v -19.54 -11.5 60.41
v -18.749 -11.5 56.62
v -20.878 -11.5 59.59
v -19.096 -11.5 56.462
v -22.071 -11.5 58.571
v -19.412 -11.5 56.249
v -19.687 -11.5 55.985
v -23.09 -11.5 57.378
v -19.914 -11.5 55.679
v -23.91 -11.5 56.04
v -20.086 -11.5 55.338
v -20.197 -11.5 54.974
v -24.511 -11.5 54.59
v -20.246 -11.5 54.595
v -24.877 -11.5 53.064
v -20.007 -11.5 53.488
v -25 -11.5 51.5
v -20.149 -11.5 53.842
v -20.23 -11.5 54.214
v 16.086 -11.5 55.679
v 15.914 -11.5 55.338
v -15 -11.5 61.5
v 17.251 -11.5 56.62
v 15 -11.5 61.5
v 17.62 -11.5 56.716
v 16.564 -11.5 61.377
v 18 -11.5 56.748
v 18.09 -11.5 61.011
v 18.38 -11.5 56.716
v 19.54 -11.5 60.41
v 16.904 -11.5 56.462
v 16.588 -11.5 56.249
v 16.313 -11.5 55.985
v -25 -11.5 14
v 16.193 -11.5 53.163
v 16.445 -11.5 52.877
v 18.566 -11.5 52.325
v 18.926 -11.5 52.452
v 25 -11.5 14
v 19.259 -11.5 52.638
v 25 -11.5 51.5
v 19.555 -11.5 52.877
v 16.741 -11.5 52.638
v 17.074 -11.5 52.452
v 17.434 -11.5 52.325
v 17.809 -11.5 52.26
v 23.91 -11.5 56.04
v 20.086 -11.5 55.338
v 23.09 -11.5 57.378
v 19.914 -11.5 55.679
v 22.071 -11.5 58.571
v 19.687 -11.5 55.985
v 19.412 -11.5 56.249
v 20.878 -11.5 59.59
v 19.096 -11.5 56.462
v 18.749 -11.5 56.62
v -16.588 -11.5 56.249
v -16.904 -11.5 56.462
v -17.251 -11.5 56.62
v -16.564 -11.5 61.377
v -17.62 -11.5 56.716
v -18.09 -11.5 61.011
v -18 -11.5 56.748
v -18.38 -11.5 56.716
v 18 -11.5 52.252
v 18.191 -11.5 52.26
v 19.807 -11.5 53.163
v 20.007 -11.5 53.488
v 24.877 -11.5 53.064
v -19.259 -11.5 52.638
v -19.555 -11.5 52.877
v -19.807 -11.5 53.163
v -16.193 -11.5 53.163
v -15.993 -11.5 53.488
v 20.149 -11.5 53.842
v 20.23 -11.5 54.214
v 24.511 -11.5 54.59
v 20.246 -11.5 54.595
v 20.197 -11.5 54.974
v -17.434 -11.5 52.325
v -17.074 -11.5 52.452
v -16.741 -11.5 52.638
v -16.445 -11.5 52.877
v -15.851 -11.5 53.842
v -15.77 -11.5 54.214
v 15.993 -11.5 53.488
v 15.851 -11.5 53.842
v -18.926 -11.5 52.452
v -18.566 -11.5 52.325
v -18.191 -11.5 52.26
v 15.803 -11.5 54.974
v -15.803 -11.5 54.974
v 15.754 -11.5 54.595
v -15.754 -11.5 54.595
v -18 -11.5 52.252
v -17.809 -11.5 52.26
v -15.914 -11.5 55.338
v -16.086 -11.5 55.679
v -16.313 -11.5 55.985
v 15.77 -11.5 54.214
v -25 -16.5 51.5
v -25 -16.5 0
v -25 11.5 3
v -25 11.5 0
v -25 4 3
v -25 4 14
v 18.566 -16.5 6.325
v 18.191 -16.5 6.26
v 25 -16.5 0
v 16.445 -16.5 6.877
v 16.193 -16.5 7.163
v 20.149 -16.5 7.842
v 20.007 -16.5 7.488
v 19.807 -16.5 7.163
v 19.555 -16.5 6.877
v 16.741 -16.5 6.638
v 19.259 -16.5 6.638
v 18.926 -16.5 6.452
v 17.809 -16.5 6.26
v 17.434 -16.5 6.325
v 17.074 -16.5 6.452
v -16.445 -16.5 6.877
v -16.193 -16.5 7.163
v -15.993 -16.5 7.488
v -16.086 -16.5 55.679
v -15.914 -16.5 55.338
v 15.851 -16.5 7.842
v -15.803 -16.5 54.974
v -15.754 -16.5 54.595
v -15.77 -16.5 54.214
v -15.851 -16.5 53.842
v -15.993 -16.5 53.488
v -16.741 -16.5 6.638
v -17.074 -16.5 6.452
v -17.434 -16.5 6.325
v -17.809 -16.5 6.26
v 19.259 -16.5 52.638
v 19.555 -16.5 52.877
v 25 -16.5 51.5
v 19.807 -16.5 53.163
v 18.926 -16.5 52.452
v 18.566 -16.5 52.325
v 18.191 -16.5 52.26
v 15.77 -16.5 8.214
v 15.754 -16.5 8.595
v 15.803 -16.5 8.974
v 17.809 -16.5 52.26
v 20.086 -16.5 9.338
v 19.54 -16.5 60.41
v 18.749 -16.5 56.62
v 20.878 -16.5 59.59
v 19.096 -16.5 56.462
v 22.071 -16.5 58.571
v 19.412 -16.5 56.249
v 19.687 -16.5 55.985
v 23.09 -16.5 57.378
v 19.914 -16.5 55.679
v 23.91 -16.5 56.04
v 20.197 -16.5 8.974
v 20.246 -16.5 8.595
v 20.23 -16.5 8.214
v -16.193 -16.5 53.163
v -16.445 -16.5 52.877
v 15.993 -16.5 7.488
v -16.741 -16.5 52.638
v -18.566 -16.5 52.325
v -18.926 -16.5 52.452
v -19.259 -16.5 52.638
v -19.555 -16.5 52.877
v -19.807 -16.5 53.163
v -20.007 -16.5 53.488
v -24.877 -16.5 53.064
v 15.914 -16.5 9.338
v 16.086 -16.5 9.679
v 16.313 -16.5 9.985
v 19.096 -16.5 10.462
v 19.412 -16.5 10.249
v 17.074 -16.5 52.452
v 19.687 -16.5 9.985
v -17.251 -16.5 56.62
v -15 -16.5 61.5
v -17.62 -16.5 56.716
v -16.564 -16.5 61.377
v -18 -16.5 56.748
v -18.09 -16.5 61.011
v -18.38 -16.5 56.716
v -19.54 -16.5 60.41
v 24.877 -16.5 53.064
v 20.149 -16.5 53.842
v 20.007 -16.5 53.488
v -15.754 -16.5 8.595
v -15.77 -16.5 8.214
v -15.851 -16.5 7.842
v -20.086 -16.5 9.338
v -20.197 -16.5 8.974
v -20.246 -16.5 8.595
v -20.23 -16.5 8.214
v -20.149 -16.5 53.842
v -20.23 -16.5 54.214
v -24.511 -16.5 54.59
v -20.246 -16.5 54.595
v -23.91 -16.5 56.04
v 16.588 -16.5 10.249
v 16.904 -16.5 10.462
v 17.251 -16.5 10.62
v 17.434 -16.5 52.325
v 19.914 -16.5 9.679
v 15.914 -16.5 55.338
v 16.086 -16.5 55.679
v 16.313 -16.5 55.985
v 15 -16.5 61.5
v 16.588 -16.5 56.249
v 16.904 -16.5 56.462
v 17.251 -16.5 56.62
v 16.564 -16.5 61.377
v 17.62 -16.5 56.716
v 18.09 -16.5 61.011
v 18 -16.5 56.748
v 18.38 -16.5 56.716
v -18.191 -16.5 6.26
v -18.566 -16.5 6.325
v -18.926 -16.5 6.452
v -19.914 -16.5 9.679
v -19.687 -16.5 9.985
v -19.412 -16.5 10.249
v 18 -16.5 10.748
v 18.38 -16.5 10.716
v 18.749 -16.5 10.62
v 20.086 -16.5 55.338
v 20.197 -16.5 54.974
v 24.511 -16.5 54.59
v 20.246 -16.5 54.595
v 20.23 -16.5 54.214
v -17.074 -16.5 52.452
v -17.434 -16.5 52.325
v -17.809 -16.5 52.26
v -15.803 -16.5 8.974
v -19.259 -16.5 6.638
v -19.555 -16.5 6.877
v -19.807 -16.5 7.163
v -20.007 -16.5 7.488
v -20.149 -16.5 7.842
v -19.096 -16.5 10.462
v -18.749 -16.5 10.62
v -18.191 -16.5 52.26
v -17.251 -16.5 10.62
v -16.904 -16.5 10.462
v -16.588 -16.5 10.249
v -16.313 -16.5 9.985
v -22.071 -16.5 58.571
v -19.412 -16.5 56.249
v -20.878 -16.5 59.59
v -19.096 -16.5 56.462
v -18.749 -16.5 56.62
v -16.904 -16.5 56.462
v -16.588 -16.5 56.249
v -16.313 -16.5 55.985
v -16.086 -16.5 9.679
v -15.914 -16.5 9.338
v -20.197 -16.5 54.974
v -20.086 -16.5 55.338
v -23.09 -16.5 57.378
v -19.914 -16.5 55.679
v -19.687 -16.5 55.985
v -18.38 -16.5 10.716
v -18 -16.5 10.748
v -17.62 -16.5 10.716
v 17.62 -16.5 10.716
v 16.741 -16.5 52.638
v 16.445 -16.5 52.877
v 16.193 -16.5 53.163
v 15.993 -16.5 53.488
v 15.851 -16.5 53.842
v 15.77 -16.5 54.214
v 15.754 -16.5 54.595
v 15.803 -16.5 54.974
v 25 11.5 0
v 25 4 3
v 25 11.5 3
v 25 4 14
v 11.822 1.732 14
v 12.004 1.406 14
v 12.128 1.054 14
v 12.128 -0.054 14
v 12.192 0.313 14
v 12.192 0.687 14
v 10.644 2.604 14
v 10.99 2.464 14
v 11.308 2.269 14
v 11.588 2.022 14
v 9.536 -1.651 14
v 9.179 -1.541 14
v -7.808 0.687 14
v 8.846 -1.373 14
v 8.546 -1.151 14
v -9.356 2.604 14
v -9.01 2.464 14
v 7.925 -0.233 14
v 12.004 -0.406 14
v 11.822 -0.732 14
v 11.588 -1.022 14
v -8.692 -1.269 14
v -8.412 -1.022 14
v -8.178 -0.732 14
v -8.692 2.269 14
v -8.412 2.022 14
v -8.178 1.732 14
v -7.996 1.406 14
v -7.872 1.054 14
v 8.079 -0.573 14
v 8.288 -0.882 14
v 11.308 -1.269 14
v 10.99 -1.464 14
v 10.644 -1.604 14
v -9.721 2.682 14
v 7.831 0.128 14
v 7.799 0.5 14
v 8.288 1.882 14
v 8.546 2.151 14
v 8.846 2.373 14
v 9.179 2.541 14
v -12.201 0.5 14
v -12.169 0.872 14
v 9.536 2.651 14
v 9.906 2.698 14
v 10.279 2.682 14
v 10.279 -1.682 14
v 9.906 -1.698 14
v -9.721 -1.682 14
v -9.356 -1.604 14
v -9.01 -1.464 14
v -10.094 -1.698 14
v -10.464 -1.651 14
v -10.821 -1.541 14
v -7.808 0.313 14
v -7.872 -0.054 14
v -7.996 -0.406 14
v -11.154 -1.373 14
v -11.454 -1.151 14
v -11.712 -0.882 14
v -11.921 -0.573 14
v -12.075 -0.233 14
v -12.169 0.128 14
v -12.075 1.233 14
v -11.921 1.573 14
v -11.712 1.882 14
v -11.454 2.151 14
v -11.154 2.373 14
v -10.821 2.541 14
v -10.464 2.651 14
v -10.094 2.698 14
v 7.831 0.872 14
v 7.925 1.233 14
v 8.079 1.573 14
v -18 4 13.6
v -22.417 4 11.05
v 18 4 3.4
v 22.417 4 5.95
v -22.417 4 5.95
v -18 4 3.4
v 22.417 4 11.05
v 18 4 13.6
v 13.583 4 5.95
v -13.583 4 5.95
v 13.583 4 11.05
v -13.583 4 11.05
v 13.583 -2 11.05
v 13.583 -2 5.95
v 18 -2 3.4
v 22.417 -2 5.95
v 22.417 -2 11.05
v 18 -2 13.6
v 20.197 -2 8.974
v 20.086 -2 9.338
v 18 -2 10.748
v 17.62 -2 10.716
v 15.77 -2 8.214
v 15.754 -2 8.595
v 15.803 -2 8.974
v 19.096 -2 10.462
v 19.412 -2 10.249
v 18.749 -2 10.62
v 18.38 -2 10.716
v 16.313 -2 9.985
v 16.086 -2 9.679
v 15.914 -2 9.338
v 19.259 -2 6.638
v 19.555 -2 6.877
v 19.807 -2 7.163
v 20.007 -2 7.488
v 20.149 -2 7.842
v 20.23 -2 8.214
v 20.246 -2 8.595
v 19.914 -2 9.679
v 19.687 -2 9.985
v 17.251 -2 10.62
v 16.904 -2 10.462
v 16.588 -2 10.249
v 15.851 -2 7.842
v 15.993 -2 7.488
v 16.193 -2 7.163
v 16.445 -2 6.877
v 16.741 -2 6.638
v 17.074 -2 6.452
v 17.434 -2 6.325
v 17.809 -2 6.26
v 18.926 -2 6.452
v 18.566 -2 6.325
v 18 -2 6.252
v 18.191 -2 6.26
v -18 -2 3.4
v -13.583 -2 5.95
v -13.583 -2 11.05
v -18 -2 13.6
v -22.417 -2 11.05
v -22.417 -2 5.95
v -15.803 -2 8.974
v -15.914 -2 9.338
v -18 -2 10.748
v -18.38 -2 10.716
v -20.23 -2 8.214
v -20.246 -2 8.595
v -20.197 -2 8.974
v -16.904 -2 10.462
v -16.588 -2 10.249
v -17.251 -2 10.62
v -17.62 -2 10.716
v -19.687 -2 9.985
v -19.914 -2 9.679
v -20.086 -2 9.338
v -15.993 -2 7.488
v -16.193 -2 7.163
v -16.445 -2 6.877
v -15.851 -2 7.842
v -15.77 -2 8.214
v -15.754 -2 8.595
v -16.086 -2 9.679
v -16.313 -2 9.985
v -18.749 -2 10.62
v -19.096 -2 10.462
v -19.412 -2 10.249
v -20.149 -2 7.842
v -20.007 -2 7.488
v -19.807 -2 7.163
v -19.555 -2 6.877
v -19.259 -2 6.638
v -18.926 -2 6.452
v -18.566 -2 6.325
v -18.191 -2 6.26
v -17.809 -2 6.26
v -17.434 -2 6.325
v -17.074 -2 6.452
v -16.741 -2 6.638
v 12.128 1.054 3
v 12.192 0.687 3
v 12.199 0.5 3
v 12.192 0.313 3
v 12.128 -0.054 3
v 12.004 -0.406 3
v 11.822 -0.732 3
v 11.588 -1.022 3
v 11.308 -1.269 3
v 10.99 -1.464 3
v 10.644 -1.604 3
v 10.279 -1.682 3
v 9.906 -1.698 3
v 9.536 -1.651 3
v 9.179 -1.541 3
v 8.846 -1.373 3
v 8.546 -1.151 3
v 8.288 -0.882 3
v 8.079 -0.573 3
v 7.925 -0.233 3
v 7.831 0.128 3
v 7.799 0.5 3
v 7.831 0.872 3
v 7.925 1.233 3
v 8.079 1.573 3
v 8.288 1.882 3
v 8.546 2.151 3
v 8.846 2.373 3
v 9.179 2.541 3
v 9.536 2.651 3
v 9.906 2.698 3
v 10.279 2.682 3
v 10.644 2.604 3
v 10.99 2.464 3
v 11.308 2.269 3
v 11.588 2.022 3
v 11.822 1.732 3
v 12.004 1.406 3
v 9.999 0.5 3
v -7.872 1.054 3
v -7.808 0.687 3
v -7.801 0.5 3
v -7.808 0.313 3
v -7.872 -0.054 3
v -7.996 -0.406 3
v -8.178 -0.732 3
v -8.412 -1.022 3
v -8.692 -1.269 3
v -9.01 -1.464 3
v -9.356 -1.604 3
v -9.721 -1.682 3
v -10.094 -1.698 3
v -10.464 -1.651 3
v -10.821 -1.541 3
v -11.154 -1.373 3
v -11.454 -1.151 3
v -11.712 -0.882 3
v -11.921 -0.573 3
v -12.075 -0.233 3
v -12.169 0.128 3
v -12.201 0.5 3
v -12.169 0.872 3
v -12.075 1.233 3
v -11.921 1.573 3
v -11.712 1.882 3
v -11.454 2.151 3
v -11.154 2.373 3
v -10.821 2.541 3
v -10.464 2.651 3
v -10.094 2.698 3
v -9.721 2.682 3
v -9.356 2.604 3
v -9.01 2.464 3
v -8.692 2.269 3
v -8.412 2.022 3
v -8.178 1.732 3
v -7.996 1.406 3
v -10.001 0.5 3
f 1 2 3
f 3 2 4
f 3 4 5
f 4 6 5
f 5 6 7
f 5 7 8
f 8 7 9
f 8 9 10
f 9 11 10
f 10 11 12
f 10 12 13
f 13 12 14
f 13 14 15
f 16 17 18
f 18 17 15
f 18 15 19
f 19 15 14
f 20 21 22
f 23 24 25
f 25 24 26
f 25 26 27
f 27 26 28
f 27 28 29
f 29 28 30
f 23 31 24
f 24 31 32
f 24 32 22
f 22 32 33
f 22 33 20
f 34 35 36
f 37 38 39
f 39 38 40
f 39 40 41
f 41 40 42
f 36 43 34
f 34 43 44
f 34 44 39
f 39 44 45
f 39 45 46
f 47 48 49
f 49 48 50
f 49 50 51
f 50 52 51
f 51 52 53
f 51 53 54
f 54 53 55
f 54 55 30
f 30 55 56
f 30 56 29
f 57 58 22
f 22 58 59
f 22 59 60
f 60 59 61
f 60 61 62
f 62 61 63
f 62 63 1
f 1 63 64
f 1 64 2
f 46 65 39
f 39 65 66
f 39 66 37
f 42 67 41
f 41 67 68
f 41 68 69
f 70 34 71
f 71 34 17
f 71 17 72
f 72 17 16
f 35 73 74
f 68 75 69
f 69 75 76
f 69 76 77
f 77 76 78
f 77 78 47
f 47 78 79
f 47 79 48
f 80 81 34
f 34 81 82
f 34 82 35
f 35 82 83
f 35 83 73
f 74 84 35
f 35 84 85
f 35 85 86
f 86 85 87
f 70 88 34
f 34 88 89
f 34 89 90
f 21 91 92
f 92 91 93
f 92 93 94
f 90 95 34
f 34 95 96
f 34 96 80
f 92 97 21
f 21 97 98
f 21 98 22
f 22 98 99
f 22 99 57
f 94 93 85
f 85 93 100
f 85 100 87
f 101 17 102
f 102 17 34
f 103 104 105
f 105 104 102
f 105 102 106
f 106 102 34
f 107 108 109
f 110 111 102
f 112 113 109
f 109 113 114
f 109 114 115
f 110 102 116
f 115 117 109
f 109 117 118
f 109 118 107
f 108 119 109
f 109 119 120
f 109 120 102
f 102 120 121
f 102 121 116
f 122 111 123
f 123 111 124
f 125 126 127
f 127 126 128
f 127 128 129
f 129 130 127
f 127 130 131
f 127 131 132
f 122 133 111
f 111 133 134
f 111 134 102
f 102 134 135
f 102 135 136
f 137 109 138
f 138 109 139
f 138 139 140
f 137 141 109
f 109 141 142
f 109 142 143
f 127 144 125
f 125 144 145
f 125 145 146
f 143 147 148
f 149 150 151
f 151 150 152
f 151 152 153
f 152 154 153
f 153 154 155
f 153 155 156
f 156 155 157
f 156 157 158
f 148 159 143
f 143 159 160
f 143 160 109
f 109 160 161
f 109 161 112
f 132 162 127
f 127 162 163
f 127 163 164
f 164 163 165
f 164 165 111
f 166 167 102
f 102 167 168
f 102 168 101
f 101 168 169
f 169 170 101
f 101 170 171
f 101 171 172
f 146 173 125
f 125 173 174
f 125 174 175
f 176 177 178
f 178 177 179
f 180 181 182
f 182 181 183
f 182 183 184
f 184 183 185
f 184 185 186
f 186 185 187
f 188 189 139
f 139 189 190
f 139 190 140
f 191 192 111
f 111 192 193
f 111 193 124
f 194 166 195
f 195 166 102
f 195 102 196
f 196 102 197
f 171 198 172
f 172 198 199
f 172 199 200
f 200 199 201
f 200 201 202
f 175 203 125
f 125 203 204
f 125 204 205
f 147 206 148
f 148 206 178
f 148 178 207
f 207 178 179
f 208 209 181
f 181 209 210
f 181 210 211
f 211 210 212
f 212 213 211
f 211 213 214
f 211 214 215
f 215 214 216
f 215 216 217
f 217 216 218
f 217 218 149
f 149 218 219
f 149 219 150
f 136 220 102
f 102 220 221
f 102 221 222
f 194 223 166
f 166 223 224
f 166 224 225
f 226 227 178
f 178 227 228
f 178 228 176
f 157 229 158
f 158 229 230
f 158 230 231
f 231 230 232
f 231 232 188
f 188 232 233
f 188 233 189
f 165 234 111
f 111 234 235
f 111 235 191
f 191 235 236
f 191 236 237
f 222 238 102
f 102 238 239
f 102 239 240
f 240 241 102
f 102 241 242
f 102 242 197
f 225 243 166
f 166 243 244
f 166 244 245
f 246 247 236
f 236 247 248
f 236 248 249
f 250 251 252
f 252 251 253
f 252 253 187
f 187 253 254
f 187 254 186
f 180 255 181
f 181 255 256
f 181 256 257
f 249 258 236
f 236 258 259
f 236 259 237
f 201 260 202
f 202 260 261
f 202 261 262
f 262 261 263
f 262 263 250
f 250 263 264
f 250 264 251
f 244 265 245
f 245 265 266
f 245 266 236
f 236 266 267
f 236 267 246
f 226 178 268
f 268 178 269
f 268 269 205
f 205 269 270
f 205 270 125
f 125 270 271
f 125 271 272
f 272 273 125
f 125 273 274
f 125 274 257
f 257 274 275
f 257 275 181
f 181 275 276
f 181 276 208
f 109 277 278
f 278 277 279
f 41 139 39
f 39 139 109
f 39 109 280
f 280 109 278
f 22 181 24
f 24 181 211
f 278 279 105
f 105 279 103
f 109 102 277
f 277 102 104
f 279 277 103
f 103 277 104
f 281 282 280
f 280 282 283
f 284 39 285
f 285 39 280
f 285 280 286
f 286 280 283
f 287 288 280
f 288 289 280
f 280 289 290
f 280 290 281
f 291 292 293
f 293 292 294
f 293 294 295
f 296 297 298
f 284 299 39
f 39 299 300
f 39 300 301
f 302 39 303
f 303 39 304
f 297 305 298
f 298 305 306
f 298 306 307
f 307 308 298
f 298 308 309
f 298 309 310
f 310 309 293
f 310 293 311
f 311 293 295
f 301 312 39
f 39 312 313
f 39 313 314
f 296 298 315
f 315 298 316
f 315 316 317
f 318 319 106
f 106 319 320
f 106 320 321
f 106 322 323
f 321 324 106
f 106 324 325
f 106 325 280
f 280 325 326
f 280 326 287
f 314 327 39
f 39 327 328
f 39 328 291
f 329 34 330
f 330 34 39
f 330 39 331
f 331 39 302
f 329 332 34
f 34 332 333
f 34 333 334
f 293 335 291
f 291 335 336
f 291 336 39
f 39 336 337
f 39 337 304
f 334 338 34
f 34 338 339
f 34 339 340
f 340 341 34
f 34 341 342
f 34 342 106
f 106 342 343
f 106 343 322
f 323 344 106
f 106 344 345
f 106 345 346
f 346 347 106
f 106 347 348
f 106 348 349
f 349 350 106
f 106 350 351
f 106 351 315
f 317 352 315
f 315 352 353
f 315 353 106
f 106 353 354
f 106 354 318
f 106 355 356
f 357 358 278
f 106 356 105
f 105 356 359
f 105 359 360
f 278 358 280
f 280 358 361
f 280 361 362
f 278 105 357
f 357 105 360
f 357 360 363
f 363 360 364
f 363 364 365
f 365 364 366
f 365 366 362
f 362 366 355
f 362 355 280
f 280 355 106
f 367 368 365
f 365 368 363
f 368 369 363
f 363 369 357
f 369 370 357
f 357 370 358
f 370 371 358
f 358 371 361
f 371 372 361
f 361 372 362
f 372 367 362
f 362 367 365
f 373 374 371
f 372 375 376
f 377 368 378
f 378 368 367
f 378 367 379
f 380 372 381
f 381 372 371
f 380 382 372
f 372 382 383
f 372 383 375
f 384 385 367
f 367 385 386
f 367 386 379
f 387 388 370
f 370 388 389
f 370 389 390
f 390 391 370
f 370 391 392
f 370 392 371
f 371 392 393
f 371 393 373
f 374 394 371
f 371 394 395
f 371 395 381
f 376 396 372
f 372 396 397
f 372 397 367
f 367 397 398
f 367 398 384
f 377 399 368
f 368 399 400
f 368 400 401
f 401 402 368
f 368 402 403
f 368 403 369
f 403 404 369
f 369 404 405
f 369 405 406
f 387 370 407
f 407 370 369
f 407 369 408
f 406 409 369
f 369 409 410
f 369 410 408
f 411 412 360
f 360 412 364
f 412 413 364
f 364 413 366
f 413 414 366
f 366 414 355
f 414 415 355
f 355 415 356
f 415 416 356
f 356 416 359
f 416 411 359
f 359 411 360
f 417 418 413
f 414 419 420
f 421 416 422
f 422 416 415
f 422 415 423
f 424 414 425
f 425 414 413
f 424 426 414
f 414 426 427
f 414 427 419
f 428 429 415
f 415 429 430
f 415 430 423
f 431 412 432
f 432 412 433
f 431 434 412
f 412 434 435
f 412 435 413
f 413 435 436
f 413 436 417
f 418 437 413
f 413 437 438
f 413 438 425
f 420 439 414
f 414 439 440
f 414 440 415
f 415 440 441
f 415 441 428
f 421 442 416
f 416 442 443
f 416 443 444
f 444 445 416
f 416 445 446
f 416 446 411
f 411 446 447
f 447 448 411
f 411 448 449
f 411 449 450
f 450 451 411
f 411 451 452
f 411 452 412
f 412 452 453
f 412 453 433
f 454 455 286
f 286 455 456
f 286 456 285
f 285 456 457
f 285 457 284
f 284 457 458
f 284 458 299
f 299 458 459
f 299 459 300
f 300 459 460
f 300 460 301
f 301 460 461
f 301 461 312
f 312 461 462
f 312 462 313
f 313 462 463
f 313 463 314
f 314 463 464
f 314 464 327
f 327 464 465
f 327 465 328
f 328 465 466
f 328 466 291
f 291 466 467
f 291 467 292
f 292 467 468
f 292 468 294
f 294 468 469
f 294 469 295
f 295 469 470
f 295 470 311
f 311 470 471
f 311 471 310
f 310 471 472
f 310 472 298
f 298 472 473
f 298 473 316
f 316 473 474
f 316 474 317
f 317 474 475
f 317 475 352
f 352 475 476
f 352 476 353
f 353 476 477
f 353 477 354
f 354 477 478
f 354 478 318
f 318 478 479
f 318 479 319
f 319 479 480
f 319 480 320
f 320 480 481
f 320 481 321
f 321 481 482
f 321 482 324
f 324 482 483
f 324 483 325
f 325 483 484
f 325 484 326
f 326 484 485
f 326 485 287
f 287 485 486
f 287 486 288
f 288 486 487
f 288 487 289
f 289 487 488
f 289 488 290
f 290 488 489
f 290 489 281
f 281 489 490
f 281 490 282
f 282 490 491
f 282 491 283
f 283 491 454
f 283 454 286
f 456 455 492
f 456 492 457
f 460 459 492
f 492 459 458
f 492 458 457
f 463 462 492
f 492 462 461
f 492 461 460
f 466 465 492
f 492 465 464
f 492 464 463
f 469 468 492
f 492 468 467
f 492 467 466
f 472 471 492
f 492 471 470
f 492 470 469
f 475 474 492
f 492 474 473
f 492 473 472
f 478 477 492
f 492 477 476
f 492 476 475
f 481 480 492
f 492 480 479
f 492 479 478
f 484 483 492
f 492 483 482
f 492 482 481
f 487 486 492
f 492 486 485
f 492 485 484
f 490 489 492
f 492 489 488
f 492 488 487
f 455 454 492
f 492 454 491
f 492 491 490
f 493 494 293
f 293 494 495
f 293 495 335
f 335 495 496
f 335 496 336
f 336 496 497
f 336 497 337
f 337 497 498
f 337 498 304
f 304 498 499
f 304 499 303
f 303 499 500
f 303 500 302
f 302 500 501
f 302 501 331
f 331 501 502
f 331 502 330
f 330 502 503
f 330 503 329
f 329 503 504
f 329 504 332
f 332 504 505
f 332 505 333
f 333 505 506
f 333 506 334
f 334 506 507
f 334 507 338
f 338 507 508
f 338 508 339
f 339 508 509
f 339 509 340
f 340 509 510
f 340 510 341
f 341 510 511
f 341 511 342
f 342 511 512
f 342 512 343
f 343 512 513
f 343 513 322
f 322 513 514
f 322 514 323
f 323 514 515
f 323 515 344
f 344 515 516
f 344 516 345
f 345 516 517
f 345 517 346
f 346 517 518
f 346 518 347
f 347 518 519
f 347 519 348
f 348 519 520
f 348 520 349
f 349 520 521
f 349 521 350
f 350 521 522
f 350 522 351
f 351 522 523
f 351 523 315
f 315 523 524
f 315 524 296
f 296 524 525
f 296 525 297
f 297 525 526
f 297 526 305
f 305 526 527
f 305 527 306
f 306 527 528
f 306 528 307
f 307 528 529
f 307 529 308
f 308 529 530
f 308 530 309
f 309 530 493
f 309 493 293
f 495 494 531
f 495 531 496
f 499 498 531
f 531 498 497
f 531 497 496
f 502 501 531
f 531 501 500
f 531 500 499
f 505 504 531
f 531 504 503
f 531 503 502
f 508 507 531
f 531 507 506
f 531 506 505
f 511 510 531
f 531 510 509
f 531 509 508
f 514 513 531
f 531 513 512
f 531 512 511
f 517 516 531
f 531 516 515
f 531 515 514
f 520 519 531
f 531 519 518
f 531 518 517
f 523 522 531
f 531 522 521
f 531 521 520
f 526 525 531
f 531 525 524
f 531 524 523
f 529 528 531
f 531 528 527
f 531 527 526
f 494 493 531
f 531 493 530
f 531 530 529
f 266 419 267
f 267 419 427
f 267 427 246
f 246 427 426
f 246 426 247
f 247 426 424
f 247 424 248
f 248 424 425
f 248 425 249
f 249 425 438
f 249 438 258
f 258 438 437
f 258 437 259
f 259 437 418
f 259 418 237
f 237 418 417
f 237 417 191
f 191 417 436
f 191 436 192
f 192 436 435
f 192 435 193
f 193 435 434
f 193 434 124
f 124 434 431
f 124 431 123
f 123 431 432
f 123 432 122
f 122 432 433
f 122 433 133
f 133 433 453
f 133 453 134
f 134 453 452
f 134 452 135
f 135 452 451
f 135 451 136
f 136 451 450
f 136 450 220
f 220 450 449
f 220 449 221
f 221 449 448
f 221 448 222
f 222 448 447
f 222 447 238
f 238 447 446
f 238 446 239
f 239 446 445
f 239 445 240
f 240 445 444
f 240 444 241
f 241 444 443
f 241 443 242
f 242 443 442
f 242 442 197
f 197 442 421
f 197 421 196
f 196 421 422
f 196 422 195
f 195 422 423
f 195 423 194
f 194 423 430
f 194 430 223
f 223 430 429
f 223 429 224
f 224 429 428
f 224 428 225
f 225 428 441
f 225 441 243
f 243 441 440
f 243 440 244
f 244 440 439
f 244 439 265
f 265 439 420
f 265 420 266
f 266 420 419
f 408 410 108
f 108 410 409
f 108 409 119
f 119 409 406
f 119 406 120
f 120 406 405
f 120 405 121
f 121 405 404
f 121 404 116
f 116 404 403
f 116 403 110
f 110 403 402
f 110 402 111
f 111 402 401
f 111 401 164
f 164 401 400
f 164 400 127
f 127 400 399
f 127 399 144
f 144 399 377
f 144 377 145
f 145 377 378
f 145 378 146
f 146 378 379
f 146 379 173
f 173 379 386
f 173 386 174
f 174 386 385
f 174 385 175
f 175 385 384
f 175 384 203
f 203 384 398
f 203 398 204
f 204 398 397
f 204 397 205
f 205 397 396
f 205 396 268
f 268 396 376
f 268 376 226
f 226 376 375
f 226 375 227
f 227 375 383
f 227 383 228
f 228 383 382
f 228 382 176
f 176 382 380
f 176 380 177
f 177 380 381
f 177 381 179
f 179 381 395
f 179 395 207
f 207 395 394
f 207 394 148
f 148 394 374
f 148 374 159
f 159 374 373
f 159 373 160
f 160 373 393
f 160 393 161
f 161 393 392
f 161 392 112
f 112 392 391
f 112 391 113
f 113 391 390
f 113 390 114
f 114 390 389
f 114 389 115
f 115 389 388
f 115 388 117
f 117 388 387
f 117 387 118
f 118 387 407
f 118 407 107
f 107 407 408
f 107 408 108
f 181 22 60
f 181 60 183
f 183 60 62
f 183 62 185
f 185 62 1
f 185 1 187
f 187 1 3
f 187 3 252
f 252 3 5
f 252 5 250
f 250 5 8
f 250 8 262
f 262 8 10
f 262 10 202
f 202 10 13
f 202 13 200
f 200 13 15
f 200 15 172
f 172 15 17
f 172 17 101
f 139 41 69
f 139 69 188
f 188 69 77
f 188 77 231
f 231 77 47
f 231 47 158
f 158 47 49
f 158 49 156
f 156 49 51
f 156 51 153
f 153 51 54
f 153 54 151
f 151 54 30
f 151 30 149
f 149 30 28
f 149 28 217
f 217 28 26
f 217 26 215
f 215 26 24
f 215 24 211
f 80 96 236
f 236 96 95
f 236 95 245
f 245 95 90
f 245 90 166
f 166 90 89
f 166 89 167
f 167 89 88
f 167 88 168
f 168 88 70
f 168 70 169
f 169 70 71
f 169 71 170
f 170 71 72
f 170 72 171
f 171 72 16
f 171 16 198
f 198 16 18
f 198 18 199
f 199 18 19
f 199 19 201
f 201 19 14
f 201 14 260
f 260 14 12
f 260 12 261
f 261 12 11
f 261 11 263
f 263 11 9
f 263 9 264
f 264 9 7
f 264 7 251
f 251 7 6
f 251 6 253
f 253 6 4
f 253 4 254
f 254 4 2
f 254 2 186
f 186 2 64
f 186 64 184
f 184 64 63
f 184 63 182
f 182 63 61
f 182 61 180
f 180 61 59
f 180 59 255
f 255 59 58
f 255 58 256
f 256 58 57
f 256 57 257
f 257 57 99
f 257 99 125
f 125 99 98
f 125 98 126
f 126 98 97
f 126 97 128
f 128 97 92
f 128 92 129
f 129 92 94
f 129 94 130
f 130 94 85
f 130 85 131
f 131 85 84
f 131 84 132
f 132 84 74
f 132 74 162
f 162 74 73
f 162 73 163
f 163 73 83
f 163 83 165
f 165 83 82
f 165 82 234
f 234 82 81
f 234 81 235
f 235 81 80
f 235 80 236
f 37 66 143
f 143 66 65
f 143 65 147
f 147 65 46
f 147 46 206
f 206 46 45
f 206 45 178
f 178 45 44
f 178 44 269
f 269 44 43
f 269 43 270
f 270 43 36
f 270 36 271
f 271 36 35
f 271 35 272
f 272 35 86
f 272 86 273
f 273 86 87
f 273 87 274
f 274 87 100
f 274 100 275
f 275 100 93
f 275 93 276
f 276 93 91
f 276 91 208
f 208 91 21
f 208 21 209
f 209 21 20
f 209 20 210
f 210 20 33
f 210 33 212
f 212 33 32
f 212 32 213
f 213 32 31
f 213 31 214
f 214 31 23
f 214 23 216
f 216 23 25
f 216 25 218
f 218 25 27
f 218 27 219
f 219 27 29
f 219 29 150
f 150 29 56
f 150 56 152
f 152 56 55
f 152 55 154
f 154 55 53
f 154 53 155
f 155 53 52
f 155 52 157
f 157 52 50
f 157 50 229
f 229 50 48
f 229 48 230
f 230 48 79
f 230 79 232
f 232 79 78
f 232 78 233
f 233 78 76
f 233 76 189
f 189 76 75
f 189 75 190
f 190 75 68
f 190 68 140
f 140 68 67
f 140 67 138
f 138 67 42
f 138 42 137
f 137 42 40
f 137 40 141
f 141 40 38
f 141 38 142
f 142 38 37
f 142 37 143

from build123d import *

# Parameters (mm, degrees)
SKETCH1_W               = 50
SKETCH1_H               = 33
BOSS_EXTRUDE1_DEPTH     = 3
SKETCH2_W               = 50
SKETCH2_H               = 5
BOSS_EXTRUDE2_DEPTH     = 58.5
SKETCH6_W               = 50
SKETCH6_H               = 5
CUT_EXTRUDE3_DEPTH      = 3
SKETCH7_W               = 50
SKETCH7_H               = 11
BOSS_EXTRUDE4_DEPTH     = 15.5
CUT_EXTRUDE4_DEPTH      = 6
SKETCH4_R               = 2.2
CUT_EXTRUDE5_DEPTH      = 59.5
SKETCH3_R               = 2.2479
CUT_EXTRUDE1_DEPTH      = 24
CUT_EXTRUDE1_DEPTH_BACK = 6


with BuildPart() as part:
    # Sketch1 → Boss-Extrude1 (new body)
    with BuildSketch(Plane.XY):
        Rectangle(SKETCH1_W, SKETCH1_H)
    extrude(amount=BOSS_EXTRUDE1_DEPTH)

    # Sketch2 → Boss-Extrude2 (add)
    with BuildSketch(Plane.XY.offset(3)):
        with Locations((0, -14)):
            Rectangle(SKETCH2_W, SKETCH2_H)
    extrude(amount=BOSS_EXTRUDE2_DEPTH)

    # Sketch6 → Cut-Extrude3 (cut)
    with BuildSketch(Plane.XY.offset(3)):
        with Locations((0, 14)):
            Rectangle(SKETCH6_W, SKETCH6_H)
    extrude(amount=-CUT_EXTRUDE3_DEPTH, mode=Mode.SUBTRACT)

    # Sketch7 → Boss-Extrude4 (add)
    with BuildSketch(Plane(origin=(0, -11.5, 0), x_dir=(1, 0, 0), z_dir=(0, 1, 0))):
        with Locations((0, -8.5)):
            Rectangle(SKETCH7_W, SKETCH7_H)
    extrude(amount=BOSS_EXTRUDE4_DEPTH)

    # Sketch8 → Cut-Extrude4 (cut)
    with BuildSketch(Plane(origin=(0, 4, 0), x_dir=(1, 0, 0), z_dir=(0, 1, 0))):
        Polygon((-18, -3.4), (-22.416729559, -5.95), (-22.416729559, -11.05), (-18, -13.6), (-13.583270441, -11.05), (-13.583270441, -5.95), align=None)
        Polygon((13.583270441, -5.95), (18, -3.4), (22.416729559, -5.95), (22.416729559, -11.05), (18, -13.6), (13.583270441, -11.05), align=None)
    extrude(amount=-CUT_EXTRUDE4_DEPTH, mode=Mode.SUBTRACT)

    # Sketch4 → Cut-Extrude5 (cut, through all)
    with BuildSketch(Plane.XY.offset(3)):
        with Locations((-10.000570114, 0.5)):
            Circle(SKETCH4_R)
        with Locations((9.999429886, 0.5)):
            Circle(SKETCH4_R)
    extrude(amount=CUT_EXTRUDE5_DEPTH, mode=Mode.SUBTRACT)

    # Sketch3 → Cut-Extrude1 (cut, two sides)
    with BuildSketch(Plane(origin=(0, -11.5, 0), x_dir=(1, 0, 0), z_dir=(0, 1, 0))) as cut_extrude1_sk:
        with Locations((-18, -54.5)):
            Circle(SKETCH3_R)
        with Locations((18, -54.5)):
            Circle(SKETCH3_R)
        with Locations((-18, -8.5)):
            Circle(SKETCH3_R)
        with Locations((18, -8.5)):
            Circle(SKETCH3_R)
        with BuildLine():
            Line((-25, -51.5), (-25, -61.5))
            Line((-25, -61.5), (-15, -61.5))
            ThreePointArc((-15, -61.5), (-22.071067812, -58.571067812), (-25, -51.5))
        make_face()
        with BuildLine():
            Line((15, -61.5), (25, -61.5))
            Line((25, -61.5), (25, -51.5))
            ThreePointArc((25, -51.5), (22.071067812, -58.571067812), (15, -61.5))
        make_face()
    extrude(amount=CUT_EXTRUDE1_DEPTH, mode=Mode.SUBTRACT)
    extrude(cut_extrude1_sk.sketch, amount=-CUT_EXTRUDE1_DEPTH_BACK, mode=Mode.SUBTRACT)


solid = part.part
